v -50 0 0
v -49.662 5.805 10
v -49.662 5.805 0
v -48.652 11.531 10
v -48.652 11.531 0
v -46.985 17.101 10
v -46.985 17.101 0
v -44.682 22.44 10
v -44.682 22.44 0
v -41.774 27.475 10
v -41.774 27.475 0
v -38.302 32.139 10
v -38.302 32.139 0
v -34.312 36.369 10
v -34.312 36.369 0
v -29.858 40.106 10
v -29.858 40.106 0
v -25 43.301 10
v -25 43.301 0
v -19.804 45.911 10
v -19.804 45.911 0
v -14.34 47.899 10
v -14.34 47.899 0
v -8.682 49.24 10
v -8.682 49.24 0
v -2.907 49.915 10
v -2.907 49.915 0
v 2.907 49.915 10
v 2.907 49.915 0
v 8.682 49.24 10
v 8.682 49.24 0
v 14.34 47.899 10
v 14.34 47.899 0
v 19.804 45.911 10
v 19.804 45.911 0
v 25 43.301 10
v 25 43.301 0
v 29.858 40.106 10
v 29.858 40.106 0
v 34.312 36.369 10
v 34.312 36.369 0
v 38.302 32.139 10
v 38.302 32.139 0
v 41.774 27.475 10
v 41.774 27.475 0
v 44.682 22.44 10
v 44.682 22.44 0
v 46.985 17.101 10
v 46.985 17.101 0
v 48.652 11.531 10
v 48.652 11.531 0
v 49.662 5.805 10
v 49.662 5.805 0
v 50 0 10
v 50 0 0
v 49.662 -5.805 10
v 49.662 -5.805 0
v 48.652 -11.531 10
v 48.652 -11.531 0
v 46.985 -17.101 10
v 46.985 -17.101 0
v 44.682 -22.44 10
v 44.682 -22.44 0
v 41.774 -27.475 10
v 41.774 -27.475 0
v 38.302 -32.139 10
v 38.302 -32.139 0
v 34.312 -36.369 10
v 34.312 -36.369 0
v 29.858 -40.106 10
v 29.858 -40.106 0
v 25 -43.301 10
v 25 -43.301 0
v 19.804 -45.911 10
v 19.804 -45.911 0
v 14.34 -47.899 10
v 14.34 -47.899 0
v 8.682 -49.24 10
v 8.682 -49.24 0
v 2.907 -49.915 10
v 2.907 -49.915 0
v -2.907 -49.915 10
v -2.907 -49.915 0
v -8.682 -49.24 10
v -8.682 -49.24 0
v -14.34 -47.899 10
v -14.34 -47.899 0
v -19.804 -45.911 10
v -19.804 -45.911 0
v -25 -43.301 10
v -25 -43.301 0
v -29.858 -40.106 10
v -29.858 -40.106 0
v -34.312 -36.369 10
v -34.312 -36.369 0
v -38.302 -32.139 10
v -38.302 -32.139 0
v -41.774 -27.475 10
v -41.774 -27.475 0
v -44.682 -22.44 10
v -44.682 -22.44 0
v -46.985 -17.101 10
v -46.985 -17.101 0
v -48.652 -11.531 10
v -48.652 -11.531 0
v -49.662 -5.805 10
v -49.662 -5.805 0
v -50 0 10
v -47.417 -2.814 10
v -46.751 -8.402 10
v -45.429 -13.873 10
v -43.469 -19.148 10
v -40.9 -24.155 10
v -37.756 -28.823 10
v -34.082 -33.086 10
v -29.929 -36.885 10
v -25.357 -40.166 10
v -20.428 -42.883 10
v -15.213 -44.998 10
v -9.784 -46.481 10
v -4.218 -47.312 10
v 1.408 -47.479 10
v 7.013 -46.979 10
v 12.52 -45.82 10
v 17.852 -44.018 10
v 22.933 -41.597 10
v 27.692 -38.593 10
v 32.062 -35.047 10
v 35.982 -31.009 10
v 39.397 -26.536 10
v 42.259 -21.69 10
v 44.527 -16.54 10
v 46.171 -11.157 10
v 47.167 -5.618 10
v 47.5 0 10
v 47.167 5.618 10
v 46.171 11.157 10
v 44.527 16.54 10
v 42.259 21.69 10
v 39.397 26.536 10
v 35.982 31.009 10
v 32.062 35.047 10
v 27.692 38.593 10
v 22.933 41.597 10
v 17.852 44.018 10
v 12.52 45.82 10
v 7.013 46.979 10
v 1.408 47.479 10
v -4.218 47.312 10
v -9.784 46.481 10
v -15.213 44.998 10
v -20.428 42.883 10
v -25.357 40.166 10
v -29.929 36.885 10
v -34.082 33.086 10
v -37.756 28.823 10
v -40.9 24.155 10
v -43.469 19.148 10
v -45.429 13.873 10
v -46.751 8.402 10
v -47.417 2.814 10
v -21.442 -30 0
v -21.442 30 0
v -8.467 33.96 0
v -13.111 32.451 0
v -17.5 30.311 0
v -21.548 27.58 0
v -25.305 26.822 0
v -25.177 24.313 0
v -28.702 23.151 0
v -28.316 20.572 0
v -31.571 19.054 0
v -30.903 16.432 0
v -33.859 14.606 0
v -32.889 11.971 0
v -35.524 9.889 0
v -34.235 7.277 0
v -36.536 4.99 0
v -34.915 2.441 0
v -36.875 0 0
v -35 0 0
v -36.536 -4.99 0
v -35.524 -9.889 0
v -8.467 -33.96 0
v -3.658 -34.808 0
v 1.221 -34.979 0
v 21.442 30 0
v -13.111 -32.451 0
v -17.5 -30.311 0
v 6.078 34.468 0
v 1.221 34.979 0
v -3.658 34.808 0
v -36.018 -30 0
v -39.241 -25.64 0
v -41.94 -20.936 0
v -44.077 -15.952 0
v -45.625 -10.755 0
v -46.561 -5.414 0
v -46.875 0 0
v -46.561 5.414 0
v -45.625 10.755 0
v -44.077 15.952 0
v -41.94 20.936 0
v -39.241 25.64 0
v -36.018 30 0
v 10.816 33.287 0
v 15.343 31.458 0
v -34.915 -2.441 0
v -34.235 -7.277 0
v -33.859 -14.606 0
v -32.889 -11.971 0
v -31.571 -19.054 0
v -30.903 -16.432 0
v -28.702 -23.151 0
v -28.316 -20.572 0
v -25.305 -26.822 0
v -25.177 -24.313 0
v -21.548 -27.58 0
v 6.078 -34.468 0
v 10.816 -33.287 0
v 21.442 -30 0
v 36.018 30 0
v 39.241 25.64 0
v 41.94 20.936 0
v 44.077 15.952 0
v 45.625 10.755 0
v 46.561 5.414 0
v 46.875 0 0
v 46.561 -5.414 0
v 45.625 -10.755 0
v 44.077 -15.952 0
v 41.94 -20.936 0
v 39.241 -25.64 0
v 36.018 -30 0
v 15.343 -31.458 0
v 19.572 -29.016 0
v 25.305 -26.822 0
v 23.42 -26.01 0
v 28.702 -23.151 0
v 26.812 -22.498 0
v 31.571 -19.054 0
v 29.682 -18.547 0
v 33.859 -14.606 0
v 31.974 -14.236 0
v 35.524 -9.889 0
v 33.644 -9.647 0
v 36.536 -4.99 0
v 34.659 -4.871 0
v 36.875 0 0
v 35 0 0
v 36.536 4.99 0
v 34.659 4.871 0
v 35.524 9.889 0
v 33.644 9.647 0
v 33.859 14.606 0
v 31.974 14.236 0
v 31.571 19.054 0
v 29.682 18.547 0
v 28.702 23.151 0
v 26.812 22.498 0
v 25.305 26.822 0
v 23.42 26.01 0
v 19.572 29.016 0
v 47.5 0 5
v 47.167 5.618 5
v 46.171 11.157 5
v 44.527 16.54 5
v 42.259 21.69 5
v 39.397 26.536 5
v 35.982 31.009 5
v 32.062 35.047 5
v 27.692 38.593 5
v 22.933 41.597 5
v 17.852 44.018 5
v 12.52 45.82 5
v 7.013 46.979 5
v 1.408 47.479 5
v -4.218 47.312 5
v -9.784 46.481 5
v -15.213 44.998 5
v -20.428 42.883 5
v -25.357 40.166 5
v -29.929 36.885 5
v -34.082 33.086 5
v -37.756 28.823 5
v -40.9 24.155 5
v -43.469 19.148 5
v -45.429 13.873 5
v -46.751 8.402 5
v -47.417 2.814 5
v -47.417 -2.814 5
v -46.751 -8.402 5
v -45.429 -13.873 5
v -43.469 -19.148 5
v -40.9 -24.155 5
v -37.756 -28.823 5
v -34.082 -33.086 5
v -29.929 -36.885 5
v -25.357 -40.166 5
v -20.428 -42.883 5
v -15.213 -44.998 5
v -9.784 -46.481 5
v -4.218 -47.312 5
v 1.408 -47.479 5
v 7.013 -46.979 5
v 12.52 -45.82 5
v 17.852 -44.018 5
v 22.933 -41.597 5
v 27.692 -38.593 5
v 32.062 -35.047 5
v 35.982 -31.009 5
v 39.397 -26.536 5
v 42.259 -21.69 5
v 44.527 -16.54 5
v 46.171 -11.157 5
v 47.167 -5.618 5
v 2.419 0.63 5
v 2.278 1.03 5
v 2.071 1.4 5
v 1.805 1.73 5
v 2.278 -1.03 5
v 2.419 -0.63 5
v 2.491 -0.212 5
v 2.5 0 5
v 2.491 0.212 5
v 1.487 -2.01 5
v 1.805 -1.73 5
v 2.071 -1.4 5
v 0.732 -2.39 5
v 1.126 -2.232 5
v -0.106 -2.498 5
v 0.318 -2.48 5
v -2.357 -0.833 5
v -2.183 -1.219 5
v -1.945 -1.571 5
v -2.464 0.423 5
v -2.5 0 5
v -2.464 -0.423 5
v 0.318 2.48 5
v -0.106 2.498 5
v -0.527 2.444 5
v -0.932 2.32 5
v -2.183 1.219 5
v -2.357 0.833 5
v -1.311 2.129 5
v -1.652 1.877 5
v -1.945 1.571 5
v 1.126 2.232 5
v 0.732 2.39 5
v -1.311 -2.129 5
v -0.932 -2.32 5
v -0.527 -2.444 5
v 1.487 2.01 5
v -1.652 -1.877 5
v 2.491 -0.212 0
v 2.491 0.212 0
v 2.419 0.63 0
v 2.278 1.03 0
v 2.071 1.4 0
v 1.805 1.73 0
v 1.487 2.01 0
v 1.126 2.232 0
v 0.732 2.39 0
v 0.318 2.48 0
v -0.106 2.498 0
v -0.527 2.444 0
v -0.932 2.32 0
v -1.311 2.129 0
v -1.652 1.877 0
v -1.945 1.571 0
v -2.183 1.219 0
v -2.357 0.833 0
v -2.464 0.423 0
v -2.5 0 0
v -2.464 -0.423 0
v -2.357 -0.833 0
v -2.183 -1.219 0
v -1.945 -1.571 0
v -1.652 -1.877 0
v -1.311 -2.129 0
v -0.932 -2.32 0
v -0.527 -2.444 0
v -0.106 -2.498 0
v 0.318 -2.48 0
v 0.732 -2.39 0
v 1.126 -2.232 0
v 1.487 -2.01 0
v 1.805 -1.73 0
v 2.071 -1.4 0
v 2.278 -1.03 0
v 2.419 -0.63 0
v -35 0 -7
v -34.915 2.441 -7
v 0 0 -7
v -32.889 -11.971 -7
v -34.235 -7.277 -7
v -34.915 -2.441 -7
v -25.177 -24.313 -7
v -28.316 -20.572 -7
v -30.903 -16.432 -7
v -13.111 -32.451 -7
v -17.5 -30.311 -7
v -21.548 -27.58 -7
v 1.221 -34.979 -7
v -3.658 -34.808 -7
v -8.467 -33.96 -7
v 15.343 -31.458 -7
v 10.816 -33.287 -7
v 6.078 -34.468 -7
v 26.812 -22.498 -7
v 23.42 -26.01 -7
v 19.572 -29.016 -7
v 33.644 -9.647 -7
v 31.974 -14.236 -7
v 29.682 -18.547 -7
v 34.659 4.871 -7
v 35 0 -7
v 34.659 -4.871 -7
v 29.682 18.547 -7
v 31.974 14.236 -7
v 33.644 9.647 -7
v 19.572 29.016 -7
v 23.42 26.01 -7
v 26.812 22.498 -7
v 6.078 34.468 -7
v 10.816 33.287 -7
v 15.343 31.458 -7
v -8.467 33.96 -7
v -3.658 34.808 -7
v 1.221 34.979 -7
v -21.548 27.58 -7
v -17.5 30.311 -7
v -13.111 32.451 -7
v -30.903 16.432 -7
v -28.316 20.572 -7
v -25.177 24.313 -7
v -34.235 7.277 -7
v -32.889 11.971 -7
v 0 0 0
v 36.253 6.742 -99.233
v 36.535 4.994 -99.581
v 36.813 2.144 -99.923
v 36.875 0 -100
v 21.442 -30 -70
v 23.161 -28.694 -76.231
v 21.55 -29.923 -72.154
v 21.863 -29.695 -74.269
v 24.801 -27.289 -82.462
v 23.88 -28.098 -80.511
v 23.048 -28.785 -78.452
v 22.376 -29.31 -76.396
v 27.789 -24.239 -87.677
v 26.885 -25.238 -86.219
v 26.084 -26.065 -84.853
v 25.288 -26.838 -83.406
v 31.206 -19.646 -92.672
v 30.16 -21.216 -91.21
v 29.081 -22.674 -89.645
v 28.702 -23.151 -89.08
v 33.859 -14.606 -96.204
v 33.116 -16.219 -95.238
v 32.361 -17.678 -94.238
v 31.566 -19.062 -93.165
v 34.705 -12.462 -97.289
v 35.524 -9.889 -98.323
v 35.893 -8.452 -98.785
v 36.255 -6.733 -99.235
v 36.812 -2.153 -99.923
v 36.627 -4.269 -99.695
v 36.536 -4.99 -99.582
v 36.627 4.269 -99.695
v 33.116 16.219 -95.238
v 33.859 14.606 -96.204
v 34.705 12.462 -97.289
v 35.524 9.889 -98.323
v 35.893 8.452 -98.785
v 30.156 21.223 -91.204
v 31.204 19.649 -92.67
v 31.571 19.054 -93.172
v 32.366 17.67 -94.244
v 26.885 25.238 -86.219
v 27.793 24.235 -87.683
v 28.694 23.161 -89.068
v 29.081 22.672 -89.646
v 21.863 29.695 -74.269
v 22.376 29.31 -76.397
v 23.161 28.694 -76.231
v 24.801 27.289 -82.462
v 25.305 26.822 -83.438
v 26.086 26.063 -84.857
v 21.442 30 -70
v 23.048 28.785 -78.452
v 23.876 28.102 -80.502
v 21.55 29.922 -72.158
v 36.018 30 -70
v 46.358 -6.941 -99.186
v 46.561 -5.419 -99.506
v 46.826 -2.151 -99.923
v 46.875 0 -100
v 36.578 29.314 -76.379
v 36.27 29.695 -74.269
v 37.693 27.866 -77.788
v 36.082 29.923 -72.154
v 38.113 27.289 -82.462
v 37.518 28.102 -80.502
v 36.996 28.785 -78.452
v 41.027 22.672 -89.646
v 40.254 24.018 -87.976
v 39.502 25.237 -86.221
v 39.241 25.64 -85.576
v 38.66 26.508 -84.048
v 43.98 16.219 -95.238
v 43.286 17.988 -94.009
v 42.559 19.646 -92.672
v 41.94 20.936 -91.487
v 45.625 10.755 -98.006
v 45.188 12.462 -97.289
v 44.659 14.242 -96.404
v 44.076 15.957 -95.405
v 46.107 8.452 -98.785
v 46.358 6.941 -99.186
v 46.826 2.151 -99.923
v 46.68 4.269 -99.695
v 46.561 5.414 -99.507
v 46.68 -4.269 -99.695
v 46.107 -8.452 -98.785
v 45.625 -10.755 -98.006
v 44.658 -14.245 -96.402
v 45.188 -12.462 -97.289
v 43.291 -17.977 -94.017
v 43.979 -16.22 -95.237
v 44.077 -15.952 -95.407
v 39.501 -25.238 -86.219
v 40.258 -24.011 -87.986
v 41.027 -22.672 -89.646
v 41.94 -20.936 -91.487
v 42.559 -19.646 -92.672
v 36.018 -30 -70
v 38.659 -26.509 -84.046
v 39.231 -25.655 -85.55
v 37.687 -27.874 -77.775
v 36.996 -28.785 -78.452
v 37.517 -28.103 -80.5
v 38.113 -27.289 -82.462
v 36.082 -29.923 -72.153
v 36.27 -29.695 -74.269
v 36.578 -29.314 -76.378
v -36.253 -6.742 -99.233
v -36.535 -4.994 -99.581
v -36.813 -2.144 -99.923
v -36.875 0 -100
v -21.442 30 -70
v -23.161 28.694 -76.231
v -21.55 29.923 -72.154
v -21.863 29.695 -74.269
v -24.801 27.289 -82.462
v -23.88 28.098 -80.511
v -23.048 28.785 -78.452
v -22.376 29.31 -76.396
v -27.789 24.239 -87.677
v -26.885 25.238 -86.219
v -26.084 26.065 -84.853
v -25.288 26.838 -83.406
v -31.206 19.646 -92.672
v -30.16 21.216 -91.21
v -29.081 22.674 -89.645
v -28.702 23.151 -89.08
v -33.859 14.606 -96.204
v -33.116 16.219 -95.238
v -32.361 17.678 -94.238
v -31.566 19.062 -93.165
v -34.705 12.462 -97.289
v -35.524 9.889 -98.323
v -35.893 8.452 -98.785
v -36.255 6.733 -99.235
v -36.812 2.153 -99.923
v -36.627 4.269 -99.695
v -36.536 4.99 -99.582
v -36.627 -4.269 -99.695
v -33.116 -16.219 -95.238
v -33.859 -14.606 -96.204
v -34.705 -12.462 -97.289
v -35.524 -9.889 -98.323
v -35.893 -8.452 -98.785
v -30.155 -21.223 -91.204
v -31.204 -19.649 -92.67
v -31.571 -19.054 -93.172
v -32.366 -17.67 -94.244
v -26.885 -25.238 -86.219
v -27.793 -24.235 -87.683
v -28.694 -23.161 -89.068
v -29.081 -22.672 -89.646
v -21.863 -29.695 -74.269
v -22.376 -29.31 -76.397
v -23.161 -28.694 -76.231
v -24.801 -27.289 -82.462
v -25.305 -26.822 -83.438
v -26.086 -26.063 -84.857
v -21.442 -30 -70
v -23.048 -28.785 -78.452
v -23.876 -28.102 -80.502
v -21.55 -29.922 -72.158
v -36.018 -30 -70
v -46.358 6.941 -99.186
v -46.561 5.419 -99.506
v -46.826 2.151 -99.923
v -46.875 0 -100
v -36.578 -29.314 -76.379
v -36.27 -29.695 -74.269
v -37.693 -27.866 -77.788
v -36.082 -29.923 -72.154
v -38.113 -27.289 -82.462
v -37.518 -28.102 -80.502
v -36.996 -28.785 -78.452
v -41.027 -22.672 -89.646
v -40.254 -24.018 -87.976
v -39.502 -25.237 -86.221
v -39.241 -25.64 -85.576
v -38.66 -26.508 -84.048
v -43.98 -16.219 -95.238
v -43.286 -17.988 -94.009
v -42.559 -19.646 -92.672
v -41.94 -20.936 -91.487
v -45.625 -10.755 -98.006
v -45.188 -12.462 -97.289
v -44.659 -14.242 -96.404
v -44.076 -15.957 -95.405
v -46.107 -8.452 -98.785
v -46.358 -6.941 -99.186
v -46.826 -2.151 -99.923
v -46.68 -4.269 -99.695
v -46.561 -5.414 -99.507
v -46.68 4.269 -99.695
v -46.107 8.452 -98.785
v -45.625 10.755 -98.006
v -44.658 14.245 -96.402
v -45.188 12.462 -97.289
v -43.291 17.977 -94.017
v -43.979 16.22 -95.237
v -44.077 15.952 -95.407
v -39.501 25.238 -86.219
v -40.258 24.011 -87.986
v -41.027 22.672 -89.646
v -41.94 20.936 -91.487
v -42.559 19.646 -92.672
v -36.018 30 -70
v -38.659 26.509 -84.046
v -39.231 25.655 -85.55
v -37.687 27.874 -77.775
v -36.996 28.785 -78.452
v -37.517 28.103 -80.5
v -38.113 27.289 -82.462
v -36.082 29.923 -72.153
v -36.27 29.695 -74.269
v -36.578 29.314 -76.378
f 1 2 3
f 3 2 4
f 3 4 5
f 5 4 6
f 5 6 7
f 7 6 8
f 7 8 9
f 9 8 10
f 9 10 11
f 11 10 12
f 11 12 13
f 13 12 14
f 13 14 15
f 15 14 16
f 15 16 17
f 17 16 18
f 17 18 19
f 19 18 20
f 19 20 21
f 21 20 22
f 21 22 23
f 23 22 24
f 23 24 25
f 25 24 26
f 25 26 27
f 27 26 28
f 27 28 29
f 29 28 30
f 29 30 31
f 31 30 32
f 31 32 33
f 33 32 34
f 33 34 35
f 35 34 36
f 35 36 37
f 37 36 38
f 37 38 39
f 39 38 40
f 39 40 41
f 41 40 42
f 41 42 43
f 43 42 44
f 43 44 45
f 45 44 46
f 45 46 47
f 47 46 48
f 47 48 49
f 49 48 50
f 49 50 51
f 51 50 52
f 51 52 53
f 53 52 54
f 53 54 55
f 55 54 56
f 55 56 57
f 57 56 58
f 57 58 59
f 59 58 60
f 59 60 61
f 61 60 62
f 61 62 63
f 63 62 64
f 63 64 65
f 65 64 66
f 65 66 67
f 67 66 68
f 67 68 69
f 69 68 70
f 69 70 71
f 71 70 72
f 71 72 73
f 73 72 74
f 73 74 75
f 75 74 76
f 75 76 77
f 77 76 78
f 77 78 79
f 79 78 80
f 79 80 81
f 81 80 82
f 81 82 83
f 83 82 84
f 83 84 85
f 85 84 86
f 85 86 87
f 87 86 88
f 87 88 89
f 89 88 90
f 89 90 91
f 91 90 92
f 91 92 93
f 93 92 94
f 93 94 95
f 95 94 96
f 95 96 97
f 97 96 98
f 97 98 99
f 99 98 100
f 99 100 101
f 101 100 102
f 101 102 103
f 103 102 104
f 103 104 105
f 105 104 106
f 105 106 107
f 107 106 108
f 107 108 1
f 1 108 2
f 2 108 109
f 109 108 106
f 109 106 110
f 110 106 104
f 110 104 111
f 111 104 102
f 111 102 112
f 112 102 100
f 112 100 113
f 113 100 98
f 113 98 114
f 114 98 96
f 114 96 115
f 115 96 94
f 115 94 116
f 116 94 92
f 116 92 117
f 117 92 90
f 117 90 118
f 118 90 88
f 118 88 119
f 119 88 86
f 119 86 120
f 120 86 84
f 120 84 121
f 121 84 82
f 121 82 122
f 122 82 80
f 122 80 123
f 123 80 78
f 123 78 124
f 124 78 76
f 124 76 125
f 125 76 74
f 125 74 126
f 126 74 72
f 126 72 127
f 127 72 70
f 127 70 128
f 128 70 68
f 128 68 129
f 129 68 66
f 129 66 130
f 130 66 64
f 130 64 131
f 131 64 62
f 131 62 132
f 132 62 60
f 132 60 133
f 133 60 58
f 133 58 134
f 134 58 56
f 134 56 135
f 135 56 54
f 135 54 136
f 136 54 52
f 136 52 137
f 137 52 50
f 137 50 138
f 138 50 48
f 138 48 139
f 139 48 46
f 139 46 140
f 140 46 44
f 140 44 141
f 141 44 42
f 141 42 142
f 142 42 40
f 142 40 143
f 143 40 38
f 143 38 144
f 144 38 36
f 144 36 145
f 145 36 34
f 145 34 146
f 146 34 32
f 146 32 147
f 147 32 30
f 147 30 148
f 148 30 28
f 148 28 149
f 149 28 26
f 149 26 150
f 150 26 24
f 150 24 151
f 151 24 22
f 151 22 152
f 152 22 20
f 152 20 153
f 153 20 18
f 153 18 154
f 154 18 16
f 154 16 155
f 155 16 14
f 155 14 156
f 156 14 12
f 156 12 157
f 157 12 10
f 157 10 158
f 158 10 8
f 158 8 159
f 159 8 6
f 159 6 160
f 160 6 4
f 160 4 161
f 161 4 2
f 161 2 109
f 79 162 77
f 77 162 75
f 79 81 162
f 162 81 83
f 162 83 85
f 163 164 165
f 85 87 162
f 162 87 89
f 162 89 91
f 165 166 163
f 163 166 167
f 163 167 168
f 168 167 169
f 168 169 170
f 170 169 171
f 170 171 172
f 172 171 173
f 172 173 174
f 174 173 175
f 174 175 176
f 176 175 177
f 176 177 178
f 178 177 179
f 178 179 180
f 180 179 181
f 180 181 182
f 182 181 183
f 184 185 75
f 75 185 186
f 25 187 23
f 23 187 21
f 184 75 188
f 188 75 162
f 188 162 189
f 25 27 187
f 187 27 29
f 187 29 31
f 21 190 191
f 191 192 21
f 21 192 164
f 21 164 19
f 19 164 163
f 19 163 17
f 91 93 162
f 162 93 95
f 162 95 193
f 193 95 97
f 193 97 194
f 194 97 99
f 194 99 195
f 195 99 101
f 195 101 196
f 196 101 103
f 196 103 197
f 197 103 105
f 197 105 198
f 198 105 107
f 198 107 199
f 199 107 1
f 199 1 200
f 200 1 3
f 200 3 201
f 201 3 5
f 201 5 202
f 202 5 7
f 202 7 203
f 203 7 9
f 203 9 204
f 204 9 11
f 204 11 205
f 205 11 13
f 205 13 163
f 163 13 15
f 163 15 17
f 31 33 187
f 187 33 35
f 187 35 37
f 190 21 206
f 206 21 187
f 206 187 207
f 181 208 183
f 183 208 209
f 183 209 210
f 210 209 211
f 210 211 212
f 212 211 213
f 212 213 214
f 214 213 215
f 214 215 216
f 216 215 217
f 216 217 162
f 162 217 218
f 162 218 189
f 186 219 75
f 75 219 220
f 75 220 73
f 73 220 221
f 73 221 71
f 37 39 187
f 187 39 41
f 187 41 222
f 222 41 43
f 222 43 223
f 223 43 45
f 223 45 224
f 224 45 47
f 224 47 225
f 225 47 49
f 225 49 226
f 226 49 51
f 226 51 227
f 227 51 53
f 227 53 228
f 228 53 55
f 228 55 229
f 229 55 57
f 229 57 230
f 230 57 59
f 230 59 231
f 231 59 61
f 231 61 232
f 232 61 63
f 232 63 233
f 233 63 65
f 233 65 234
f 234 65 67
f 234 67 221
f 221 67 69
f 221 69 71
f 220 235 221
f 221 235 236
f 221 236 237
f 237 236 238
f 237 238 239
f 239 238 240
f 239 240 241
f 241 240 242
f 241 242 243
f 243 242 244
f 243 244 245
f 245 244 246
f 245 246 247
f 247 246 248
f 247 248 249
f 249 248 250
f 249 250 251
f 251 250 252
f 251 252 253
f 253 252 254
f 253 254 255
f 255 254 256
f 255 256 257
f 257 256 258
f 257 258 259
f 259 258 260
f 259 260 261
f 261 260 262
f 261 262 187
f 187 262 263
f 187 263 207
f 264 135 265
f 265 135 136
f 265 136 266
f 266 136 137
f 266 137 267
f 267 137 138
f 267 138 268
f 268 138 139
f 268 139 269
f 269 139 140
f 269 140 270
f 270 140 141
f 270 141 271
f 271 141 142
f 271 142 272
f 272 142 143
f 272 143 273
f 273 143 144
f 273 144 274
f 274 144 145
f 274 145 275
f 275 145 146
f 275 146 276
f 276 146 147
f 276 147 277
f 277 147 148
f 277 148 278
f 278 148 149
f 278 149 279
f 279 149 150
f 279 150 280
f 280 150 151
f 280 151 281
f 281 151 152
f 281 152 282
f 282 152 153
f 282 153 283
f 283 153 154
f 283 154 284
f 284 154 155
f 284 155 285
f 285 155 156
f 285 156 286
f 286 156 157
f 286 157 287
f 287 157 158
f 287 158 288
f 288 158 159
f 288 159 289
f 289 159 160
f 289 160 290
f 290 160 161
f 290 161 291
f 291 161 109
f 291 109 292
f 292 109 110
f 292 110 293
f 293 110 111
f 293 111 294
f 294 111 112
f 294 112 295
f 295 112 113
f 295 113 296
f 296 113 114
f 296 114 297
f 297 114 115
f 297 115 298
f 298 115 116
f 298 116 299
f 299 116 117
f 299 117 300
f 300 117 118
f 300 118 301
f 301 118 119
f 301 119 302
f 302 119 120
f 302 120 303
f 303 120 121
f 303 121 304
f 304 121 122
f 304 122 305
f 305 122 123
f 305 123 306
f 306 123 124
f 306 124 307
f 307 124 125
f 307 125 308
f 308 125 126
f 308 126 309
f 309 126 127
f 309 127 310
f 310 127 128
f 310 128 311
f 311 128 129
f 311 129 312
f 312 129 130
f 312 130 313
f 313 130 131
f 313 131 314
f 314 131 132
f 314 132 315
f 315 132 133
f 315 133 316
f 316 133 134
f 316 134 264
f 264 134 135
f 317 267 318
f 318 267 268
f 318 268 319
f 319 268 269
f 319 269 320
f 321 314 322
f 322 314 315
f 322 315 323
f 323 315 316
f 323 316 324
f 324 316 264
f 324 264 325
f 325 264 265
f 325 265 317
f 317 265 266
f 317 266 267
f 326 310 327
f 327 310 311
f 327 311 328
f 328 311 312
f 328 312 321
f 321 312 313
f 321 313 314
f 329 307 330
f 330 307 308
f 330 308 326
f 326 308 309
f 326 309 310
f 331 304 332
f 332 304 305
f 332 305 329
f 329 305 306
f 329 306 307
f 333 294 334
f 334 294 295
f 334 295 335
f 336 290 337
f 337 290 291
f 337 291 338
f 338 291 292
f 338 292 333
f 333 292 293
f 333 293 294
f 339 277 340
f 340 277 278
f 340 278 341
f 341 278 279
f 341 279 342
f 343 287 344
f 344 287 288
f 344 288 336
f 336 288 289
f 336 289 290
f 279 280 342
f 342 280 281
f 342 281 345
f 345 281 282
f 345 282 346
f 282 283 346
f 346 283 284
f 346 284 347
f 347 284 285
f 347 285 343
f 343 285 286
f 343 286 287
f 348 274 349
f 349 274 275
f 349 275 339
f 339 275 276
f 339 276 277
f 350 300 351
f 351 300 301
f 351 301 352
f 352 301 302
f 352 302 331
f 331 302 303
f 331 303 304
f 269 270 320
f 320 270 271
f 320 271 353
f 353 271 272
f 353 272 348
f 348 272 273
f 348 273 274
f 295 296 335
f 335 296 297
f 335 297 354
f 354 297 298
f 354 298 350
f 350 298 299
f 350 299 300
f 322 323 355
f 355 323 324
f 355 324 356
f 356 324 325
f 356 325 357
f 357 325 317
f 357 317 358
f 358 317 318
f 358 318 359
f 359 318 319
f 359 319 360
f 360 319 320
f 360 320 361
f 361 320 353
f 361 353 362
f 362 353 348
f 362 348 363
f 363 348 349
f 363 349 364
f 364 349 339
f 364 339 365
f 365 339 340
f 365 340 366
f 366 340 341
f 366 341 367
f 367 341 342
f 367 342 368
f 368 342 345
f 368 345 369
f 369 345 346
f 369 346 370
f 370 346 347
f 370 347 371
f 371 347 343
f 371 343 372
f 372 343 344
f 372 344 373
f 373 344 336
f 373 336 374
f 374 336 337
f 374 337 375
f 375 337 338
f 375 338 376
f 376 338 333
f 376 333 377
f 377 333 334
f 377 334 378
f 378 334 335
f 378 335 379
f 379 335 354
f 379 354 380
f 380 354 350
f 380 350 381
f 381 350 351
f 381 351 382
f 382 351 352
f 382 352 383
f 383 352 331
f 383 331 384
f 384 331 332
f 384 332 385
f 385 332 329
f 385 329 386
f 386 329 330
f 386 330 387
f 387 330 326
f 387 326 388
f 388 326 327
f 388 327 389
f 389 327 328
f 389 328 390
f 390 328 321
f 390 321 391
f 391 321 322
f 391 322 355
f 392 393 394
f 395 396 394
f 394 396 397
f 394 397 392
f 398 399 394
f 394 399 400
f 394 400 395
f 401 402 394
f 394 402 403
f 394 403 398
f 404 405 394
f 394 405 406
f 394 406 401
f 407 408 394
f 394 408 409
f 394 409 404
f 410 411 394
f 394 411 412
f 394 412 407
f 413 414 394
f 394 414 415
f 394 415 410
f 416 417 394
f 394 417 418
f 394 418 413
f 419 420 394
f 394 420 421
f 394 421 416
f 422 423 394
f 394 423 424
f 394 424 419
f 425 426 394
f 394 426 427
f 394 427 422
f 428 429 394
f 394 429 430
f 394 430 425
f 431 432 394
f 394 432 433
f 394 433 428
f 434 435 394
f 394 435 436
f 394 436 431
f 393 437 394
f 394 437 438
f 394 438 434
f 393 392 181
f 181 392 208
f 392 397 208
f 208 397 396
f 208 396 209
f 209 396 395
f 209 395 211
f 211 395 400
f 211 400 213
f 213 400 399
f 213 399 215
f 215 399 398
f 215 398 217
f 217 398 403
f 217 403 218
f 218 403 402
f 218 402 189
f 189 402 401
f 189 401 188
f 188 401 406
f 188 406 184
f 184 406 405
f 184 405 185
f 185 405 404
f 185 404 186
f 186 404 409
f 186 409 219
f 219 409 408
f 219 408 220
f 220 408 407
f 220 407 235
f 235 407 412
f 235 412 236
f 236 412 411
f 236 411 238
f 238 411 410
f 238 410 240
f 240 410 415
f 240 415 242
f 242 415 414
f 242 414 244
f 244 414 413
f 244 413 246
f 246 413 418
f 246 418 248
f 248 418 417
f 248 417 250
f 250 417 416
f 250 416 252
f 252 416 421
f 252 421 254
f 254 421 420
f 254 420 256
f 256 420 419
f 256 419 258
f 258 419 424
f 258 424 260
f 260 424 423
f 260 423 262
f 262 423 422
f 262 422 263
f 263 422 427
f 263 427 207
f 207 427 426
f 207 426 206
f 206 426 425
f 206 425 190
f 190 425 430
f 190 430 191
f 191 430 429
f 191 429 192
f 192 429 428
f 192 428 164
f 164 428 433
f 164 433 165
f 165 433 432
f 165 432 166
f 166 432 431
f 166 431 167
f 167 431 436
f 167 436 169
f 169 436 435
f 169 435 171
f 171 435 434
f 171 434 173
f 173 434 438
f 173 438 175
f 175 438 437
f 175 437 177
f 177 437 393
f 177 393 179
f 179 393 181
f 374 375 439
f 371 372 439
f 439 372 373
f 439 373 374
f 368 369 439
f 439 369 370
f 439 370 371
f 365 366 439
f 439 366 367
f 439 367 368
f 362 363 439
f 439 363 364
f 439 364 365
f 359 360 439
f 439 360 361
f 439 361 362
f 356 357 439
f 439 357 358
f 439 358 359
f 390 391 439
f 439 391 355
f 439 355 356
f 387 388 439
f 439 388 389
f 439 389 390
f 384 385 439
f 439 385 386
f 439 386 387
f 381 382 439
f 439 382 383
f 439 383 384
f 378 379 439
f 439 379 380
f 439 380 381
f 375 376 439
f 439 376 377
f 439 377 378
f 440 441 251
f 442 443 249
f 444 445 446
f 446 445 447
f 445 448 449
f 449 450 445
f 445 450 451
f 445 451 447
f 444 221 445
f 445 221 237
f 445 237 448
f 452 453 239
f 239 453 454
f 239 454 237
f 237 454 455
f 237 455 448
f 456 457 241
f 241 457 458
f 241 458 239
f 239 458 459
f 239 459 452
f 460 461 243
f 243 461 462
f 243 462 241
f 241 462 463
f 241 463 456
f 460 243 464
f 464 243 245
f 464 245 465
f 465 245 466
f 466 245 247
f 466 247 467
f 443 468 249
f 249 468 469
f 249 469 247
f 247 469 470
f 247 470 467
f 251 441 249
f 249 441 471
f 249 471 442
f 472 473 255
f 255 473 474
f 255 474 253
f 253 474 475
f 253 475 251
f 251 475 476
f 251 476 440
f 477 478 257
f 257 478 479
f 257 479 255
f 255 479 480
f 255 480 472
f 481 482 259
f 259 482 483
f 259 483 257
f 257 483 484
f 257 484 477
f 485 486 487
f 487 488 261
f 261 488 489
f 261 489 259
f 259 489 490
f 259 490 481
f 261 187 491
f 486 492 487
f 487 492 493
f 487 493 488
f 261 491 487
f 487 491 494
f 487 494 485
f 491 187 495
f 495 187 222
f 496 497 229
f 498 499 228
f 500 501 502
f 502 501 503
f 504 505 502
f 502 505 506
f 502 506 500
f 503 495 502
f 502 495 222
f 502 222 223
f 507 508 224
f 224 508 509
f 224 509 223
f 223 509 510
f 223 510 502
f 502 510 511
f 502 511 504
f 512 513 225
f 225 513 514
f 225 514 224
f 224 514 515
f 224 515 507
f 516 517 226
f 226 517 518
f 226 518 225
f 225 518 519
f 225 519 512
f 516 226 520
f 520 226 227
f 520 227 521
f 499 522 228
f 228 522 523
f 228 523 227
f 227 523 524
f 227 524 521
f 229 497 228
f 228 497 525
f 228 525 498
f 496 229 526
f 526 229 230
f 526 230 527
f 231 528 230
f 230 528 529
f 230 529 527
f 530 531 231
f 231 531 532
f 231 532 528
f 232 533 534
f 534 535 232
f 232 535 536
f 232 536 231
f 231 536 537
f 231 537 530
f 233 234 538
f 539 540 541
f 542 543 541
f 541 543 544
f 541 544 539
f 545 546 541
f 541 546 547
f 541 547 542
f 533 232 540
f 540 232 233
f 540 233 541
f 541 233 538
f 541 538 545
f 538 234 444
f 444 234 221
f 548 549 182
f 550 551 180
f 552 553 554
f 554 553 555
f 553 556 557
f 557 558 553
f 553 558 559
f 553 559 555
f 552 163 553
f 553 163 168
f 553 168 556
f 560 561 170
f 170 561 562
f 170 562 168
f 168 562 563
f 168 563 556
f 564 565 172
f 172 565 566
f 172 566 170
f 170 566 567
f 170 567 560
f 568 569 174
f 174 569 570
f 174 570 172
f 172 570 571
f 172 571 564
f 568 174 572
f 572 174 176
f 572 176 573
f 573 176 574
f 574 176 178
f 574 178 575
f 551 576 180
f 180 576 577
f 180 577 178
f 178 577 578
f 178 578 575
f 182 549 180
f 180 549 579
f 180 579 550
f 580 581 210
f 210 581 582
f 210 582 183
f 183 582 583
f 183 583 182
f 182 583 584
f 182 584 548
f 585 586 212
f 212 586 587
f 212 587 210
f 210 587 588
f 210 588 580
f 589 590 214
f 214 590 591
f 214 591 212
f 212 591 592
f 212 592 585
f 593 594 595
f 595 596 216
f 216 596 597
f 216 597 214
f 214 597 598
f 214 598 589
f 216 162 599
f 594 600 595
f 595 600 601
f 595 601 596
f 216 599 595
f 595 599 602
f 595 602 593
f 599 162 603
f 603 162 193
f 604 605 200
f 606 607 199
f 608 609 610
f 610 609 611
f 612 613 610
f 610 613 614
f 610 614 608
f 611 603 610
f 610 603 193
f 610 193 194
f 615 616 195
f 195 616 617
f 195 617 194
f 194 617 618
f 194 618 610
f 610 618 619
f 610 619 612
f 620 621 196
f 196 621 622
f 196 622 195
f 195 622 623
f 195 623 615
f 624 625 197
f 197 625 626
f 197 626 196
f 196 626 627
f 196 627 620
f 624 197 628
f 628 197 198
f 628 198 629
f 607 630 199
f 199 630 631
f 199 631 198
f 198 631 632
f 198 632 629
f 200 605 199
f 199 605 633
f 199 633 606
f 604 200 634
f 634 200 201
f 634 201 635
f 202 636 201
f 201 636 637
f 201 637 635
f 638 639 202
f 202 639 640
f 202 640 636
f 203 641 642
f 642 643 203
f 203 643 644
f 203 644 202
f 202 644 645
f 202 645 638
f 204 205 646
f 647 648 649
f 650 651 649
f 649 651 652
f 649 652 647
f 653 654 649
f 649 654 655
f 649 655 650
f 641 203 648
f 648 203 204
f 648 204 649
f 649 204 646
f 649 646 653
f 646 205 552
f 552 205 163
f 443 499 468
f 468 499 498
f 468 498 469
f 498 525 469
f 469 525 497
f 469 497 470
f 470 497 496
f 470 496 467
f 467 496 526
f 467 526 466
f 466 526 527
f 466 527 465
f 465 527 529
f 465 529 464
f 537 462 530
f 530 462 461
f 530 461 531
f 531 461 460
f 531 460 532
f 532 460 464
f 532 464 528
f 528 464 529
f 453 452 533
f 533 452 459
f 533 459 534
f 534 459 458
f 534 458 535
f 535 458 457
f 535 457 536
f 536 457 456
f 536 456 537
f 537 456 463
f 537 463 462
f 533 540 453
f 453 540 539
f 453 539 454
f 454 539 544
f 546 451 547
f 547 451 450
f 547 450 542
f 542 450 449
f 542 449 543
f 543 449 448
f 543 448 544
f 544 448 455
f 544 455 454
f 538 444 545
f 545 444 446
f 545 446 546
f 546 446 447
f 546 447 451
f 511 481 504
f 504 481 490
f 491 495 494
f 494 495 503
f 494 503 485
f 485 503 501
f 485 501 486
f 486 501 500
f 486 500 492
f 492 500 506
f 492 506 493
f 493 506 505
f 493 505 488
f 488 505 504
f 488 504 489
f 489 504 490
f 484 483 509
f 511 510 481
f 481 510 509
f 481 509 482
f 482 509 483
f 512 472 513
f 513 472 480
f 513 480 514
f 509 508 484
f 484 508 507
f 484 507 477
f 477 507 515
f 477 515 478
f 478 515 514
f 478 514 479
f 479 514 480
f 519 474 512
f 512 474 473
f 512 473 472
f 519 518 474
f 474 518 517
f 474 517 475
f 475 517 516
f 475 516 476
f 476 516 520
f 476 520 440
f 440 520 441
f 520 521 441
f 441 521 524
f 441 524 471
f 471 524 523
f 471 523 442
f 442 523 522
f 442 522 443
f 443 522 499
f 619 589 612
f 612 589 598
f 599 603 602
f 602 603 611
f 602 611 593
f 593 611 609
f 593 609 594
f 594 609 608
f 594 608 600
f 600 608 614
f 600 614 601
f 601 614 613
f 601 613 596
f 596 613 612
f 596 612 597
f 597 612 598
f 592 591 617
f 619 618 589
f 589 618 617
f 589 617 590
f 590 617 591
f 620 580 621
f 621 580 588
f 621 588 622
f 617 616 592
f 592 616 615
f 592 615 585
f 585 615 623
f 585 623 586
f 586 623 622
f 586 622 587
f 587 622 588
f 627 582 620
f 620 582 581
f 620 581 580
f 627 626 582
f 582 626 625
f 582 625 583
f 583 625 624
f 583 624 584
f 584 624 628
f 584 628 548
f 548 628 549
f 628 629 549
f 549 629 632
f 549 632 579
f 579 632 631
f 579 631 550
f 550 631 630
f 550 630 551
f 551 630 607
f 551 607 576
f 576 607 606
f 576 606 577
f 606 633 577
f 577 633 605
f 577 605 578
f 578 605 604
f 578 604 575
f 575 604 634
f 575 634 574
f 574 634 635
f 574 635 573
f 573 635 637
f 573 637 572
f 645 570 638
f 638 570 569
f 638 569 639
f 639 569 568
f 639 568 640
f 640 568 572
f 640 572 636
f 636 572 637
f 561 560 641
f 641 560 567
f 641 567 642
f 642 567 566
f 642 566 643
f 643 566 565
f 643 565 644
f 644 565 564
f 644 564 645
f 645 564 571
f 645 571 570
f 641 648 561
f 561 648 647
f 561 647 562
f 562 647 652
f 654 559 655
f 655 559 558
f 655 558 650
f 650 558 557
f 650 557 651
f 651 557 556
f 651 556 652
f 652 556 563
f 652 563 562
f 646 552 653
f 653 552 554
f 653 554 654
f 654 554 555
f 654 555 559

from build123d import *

# Parameters (mm, degrees)
ESQUISSE1_R             = 50
BOSS_EXTRU_1_DEPTH      = 10
ESQUISSE2_R             = 47.5
ENL_V_MAT_EXTRU_1_DEPTH = 5
ESQUISSE3_R             = 2.5
ENL_V_MAT_EXTRU_2_DEPTH = 16
ESQUISSE4_R             = 35
BOSS_EXTRU_2_DEPTH      = 7
BOSS_EXTRU_3_DEPTH      = 100
CONG_1_R                = 30


with BuildPart() as part:
    # Esquisse1 → Boss.-Extru.1 (new body)
    with BuildSketch(Plane.XY):
        Circle(ESQUISSE1_R)
    extrude(amount=BOSS_EXTRU_1_DEPTH)

    # Esquisse2 → Enlèv. mat.-Extru.1 (cut)
    with BuildSketch(Plane.XY.offset(10)):
        Circle(ESQUISSE2_R)
    extrude(amount=-ENL_V_MAT_EXTRU_1_DEPTH, mode=Mode.SUBTRACT)

    # Esquisse3 → Enlèv. mat.-Extru.2 (cut)
    with BuildSketch(Plane(origin=(0, 0, 0), x_dir=(-1, 0, 0), z_dir=(0, 0, -1))):
        Circle(ESQUISSE3_R)
    extrude(amount=-ENL_V_MAT_EXTRU_2_DEPTH, mode=Mode.SUBTRACT)

    # Esquisse4 → Boss.-Extru.2 (add)
    with BuildSketch(Plane(origin=(0, 0, 0), x_dir=(-1, 0, 0), z_dir=(0, 0, -1))):
        Circle(ESQUISSE4_R)
    extrude(amount=BOSS_EXTRU_2_DEPTH)

    # Esquisse5 → Boss.-Extru.3 (add)
    with BuildSketch(Plane(origin=(0, 0, 0), x_dir=(-1, 0, 0), z_dir=(0, 0, -1))):
        with BuildLine():
            Line((-46.875, 0), (-36.875, 0))
            ThreePointArc((-36.875, 0), (-32.790583699, 16.868409696), (-21.442145998, 30))
            Line((-21.442145998, 30), (-36.017573836, 30))
            ThreePointArc((-36.017573836, 30), (-44.077144863, 15.952144863), (-46.875, 0))
        make_face()
        with BuildLine():
            ThreePointArc((-21.442145998, -30), (-32.790583699, -16.868409696), (-36.875, 0))
            Line((-36.875, 0), (-46.875, 0))
            ThreePointArc((-46.875, 0), (-44.077144863, -15.952144863), (-36.017573836, -30))
            Line((-36.017573836, -30), (-21.442145998, -30))
        make_face()
        with BuildLine():
            ThreePointArc((21.442145998, 30), (32.790583699, 16.868409696), (36.875, 0))
            Line((36.875, 0), (46.875, 0))
            ThreePointArc((46.875, 0), (44.077144863, 15.952144863), (36.017573836, 30))
            Line((36.017573836, 30), (21.442145998, 30))
        make_face()
        with BuildLine():
            Line((46.875, 0), (36.875, 0))
            ThreePointArc((36.875, 0), (32.790583699, -16.868409696), (21.442145998, -30))
            Line((21.442145998, -30), (36.017573836, -30))
            ThreePointArc((36.017573836, -30), (44.077144863, -15.952144863), (46.875, 0))
        make_face()
    extrude(amount=BOSS_EXTRU_3_DEPTH)

    # Congé1
    # the kernel refuses this fillet: 30 mm, written as the material it takes off along each edge
    with BuildSketch(Plane(origin=(-53.557854002, 30, -100), x_dir=(0, 0, 1), z_dir=(1, 0, 0)), Plane(origin=(-111.017573836, 30, -100), x_dir=(0, 0, 1), z_dir=(1, 0, 0)), Plane(origin=(111.017573836, -30, -100), x_dir=(0, 0, 1), z_dir=(-1, 0, 0)), Plane(origin=(53.557854002, -30, -100), x_dir=(0, 0, 1), z_dir=(-1, 0, 0))) as cong_1_piece_1:
        with BuildLine():
            CenterArc((CONG_1_R, CONG_1_R), CONG_1_R, 180, 90)
            Line((0, CONG_1_R), (0, 0))
            Line((0, 0), (CONG_1_R, 0))
        make_face()
    extrude(amount=164.575427838, mode=Mode.SUBTRACT)


solid = part.part
